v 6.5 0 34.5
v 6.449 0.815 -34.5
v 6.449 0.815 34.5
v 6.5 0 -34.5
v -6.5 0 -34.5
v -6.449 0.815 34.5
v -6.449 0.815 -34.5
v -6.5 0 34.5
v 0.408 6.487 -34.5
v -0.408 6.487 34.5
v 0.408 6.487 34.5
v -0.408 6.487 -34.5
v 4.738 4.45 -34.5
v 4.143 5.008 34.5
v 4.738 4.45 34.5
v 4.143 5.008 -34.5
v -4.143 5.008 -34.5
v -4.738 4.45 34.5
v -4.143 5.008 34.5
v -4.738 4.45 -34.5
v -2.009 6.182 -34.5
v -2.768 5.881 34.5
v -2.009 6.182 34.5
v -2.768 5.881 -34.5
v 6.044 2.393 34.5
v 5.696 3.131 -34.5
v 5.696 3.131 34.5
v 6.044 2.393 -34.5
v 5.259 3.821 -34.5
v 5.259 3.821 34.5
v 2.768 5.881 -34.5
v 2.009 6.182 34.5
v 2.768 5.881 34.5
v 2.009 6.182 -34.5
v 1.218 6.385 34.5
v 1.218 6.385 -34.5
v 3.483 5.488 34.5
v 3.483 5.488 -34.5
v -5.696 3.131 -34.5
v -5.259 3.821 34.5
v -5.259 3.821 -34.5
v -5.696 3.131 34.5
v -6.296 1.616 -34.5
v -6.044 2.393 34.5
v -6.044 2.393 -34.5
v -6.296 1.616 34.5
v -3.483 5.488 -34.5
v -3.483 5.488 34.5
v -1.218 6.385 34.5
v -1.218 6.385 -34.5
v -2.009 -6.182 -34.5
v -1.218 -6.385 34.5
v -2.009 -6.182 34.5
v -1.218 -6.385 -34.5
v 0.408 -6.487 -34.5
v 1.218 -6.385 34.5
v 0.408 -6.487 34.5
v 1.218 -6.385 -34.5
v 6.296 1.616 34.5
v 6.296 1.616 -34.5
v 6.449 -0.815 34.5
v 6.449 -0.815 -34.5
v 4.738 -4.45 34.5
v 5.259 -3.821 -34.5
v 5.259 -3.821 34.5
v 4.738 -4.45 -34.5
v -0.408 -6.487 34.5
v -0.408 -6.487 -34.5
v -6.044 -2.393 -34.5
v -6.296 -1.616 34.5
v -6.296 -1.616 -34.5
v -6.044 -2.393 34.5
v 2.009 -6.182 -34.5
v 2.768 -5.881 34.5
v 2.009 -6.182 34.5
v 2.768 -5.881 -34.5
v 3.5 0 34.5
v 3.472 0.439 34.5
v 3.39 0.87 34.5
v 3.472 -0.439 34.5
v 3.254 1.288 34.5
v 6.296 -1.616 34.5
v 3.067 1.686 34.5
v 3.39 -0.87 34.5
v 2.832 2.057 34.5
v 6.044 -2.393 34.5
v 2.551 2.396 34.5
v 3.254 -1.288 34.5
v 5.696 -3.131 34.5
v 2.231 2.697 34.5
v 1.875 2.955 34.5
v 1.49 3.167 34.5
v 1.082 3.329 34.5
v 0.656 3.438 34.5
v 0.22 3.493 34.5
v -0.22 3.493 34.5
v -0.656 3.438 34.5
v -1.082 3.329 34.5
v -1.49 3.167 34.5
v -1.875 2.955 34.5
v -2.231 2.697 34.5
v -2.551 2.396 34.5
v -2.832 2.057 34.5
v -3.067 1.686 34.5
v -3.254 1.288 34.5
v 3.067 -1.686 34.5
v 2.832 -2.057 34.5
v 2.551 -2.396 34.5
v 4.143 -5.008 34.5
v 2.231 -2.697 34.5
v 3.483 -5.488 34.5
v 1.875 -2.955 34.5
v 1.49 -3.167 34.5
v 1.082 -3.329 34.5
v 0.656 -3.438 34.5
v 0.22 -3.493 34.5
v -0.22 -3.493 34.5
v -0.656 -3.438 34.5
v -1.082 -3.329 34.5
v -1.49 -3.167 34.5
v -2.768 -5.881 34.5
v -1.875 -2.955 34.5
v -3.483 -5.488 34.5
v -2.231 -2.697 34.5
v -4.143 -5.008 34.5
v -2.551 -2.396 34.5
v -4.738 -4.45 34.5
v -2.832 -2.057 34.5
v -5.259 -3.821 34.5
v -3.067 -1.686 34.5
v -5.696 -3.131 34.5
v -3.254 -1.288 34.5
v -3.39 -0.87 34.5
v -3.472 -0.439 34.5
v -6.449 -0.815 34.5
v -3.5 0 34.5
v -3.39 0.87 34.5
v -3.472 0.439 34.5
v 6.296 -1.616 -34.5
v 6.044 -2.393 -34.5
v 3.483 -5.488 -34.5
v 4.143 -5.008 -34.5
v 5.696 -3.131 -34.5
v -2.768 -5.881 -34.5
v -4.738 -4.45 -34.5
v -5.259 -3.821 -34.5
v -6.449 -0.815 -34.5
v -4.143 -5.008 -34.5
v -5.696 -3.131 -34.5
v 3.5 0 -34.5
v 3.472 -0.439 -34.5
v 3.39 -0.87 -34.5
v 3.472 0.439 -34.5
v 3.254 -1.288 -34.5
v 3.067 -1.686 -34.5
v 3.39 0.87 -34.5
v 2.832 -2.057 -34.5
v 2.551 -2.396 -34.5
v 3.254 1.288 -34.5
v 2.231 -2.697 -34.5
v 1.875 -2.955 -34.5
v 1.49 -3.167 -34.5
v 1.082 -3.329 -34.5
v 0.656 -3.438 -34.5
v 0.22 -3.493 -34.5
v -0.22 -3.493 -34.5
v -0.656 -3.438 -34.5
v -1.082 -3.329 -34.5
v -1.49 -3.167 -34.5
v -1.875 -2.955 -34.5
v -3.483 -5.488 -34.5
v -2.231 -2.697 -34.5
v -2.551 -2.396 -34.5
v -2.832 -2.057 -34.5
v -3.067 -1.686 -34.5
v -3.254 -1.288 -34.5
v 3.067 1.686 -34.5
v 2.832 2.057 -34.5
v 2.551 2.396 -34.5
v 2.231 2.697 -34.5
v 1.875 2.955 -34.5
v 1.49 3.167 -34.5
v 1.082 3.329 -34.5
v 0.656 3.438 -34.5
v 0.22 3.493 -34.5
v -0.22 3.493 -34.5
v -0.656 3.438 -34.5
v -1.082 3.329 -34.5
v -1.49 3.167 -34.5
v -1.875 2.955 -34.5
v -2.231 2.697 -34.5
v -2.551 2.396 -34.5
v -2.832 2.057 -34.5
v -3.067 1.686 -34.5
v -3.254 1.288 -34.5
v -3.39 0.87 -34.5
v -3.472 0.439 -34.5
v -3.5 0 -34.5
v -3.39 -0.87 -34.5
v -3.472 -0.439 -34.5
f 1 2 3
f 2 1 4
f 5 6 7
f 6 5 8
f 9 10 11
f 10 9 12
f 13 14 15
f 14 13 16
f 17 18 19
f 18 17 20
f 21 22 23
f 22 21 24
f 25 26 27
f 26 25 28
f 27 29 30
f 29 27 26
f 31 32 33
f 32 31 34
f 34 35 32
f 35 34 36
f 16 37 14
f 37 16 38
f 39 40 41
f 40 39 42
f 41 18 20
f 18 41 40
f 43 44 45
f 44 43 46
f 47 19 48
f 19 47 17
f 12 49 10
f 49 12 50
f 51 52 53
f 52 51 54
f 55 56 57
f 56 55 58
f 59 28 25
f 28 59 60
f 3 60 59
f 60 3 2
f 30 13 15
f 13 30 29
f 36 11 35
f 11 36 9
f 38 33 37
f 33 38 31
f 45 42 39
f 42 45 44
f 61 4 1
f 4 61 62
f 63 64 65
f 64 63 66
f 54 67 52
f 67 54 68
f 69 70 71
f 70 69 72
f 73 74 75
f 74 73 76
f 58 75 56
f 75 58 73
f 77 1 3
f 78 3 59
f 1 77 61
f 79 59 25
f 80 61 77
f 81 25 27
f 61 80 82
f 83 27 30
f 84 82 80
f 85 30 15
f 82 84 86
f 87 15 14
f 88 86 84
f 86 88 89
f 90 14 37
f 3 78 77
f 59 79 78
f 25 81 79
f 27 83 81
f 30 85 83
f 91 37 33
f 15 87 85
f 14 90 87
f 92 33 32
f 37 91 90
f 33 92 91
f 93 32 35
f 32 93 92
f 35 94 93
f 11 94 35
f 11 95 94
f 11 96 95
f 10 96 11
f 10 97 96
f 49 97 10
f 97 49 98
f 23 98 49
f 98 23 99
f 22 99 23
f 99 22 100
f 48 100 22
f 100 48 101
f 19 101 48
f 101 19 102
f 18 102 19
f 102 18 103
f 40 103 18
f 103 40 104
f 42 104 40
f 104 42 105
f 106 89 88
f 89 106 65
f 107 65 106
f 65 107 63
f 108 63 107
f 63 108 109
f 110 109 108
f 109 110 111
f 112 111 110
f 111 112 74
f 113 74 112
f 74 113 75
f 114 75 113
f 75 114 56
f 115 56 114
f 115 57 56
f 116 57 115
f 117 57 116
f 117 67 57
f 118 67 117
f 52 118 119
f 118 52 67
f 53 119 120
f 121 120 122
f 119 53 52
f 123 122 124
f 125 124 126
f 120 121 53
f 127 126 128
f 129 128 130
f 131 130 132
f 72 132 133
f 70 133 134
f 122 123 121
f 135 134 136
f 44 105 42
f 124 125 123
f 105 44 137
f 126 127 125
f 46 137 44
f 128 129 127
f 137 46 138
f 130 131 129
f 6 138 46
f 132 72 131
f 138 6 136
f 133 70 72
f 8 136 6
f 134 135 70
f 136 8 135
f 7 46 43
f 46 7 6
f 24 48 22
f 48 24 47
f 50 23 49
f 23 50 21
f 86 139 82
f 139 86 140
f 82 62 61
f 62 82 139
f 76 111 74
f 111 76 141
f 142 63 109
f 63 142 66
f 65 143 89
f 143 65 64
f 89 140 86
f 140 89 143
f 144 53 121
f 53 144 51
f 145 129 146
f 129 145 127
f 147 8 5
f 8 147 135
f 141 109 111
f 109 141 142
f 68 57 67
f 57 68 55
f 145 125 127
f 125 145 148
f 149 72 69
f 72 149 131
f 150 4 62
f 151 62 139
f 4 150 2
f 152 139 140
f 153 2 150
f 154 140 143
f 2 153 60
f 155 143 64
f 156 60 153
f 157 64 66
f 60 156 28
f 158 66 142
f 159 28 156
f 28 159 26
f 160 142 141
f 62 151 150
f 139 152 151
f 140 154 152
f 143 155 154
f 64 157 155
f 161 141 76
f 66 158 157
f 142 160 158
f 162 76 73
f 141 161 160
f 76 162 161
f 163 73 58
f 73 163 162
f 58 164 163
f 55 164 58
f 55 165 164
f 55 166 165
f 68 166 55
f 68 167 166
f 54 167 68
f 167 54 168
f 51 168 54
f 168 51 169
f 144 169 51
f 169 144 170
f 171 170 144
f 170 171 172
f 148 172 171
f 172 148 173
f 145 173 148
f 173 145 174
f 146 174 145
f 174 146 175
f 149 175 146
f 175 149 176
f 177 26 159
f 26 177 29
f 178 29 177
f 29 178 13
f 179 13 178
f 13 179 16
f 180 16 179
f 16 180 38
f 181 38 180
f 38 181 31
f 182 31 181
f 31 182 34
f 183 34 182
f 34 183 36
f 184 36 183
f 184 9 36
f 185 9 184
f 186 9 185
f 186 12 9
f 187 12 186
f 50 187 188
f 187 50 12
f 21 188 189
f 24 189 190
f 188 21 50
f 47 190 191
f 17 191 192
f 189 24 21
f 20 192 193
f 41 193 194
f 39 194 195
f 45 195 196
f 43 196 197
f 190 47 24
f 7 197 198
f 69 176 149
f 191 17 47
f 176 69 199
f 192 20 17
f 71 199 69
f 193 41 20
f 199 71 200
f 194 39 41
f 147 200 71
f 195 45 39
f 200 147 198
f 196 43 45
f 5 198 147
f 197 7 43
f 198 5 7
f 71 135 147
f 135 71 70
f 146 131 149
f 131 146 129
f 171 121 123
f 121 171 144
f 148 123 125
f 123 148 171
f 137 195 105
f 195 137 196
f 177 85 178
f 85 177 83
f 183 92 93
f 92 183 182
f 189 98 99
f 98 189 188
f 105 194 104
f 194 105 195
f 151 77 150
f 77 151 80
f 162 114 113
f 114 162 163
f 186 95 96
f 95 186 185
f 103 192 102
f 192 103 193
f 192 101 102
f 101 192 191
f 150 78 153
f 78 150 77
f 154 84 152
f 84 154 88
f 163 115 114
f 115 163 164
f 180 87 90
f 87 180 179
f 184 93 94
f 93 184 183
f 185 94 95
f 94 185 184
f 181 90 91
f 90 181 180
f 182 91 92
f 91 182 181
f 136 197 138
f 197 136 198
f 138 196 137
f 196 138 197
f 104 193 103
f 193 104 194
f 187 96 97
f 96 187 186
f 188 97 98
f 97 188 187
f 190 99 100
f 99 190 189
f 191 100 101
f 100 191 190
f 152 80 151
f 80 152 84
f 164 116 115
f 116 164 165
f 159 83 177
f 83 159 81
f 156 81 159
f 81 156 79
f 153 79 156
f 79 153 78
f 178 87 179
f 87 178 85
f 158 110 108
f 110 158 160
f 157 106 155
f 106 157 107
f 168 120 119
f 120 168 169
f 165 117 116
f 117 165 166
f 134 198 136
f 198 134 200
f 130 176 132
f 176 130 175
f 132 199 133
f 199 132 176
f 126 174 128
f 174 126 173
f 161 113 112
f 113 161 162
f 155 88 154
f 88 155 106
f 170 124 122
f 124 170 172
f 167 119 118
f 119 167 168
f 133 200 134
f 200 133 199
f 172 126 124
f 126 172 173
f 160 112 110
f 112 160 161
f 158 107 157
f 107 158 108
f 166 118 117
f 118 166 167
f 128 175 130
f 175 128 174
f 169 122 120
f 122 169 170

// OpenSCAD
$fn = 50;


difference() {
	union() {
		translate(v = [0, 0, -34.5000000000]) {
			cylinder(h = 69, r = 6.5000000000);
		}
	}
	union() {
		translate(v = [0, 0, -100.0000000000]) {
			cylinder(h = 200, r = 3.5000000000);
		}
	}
}
